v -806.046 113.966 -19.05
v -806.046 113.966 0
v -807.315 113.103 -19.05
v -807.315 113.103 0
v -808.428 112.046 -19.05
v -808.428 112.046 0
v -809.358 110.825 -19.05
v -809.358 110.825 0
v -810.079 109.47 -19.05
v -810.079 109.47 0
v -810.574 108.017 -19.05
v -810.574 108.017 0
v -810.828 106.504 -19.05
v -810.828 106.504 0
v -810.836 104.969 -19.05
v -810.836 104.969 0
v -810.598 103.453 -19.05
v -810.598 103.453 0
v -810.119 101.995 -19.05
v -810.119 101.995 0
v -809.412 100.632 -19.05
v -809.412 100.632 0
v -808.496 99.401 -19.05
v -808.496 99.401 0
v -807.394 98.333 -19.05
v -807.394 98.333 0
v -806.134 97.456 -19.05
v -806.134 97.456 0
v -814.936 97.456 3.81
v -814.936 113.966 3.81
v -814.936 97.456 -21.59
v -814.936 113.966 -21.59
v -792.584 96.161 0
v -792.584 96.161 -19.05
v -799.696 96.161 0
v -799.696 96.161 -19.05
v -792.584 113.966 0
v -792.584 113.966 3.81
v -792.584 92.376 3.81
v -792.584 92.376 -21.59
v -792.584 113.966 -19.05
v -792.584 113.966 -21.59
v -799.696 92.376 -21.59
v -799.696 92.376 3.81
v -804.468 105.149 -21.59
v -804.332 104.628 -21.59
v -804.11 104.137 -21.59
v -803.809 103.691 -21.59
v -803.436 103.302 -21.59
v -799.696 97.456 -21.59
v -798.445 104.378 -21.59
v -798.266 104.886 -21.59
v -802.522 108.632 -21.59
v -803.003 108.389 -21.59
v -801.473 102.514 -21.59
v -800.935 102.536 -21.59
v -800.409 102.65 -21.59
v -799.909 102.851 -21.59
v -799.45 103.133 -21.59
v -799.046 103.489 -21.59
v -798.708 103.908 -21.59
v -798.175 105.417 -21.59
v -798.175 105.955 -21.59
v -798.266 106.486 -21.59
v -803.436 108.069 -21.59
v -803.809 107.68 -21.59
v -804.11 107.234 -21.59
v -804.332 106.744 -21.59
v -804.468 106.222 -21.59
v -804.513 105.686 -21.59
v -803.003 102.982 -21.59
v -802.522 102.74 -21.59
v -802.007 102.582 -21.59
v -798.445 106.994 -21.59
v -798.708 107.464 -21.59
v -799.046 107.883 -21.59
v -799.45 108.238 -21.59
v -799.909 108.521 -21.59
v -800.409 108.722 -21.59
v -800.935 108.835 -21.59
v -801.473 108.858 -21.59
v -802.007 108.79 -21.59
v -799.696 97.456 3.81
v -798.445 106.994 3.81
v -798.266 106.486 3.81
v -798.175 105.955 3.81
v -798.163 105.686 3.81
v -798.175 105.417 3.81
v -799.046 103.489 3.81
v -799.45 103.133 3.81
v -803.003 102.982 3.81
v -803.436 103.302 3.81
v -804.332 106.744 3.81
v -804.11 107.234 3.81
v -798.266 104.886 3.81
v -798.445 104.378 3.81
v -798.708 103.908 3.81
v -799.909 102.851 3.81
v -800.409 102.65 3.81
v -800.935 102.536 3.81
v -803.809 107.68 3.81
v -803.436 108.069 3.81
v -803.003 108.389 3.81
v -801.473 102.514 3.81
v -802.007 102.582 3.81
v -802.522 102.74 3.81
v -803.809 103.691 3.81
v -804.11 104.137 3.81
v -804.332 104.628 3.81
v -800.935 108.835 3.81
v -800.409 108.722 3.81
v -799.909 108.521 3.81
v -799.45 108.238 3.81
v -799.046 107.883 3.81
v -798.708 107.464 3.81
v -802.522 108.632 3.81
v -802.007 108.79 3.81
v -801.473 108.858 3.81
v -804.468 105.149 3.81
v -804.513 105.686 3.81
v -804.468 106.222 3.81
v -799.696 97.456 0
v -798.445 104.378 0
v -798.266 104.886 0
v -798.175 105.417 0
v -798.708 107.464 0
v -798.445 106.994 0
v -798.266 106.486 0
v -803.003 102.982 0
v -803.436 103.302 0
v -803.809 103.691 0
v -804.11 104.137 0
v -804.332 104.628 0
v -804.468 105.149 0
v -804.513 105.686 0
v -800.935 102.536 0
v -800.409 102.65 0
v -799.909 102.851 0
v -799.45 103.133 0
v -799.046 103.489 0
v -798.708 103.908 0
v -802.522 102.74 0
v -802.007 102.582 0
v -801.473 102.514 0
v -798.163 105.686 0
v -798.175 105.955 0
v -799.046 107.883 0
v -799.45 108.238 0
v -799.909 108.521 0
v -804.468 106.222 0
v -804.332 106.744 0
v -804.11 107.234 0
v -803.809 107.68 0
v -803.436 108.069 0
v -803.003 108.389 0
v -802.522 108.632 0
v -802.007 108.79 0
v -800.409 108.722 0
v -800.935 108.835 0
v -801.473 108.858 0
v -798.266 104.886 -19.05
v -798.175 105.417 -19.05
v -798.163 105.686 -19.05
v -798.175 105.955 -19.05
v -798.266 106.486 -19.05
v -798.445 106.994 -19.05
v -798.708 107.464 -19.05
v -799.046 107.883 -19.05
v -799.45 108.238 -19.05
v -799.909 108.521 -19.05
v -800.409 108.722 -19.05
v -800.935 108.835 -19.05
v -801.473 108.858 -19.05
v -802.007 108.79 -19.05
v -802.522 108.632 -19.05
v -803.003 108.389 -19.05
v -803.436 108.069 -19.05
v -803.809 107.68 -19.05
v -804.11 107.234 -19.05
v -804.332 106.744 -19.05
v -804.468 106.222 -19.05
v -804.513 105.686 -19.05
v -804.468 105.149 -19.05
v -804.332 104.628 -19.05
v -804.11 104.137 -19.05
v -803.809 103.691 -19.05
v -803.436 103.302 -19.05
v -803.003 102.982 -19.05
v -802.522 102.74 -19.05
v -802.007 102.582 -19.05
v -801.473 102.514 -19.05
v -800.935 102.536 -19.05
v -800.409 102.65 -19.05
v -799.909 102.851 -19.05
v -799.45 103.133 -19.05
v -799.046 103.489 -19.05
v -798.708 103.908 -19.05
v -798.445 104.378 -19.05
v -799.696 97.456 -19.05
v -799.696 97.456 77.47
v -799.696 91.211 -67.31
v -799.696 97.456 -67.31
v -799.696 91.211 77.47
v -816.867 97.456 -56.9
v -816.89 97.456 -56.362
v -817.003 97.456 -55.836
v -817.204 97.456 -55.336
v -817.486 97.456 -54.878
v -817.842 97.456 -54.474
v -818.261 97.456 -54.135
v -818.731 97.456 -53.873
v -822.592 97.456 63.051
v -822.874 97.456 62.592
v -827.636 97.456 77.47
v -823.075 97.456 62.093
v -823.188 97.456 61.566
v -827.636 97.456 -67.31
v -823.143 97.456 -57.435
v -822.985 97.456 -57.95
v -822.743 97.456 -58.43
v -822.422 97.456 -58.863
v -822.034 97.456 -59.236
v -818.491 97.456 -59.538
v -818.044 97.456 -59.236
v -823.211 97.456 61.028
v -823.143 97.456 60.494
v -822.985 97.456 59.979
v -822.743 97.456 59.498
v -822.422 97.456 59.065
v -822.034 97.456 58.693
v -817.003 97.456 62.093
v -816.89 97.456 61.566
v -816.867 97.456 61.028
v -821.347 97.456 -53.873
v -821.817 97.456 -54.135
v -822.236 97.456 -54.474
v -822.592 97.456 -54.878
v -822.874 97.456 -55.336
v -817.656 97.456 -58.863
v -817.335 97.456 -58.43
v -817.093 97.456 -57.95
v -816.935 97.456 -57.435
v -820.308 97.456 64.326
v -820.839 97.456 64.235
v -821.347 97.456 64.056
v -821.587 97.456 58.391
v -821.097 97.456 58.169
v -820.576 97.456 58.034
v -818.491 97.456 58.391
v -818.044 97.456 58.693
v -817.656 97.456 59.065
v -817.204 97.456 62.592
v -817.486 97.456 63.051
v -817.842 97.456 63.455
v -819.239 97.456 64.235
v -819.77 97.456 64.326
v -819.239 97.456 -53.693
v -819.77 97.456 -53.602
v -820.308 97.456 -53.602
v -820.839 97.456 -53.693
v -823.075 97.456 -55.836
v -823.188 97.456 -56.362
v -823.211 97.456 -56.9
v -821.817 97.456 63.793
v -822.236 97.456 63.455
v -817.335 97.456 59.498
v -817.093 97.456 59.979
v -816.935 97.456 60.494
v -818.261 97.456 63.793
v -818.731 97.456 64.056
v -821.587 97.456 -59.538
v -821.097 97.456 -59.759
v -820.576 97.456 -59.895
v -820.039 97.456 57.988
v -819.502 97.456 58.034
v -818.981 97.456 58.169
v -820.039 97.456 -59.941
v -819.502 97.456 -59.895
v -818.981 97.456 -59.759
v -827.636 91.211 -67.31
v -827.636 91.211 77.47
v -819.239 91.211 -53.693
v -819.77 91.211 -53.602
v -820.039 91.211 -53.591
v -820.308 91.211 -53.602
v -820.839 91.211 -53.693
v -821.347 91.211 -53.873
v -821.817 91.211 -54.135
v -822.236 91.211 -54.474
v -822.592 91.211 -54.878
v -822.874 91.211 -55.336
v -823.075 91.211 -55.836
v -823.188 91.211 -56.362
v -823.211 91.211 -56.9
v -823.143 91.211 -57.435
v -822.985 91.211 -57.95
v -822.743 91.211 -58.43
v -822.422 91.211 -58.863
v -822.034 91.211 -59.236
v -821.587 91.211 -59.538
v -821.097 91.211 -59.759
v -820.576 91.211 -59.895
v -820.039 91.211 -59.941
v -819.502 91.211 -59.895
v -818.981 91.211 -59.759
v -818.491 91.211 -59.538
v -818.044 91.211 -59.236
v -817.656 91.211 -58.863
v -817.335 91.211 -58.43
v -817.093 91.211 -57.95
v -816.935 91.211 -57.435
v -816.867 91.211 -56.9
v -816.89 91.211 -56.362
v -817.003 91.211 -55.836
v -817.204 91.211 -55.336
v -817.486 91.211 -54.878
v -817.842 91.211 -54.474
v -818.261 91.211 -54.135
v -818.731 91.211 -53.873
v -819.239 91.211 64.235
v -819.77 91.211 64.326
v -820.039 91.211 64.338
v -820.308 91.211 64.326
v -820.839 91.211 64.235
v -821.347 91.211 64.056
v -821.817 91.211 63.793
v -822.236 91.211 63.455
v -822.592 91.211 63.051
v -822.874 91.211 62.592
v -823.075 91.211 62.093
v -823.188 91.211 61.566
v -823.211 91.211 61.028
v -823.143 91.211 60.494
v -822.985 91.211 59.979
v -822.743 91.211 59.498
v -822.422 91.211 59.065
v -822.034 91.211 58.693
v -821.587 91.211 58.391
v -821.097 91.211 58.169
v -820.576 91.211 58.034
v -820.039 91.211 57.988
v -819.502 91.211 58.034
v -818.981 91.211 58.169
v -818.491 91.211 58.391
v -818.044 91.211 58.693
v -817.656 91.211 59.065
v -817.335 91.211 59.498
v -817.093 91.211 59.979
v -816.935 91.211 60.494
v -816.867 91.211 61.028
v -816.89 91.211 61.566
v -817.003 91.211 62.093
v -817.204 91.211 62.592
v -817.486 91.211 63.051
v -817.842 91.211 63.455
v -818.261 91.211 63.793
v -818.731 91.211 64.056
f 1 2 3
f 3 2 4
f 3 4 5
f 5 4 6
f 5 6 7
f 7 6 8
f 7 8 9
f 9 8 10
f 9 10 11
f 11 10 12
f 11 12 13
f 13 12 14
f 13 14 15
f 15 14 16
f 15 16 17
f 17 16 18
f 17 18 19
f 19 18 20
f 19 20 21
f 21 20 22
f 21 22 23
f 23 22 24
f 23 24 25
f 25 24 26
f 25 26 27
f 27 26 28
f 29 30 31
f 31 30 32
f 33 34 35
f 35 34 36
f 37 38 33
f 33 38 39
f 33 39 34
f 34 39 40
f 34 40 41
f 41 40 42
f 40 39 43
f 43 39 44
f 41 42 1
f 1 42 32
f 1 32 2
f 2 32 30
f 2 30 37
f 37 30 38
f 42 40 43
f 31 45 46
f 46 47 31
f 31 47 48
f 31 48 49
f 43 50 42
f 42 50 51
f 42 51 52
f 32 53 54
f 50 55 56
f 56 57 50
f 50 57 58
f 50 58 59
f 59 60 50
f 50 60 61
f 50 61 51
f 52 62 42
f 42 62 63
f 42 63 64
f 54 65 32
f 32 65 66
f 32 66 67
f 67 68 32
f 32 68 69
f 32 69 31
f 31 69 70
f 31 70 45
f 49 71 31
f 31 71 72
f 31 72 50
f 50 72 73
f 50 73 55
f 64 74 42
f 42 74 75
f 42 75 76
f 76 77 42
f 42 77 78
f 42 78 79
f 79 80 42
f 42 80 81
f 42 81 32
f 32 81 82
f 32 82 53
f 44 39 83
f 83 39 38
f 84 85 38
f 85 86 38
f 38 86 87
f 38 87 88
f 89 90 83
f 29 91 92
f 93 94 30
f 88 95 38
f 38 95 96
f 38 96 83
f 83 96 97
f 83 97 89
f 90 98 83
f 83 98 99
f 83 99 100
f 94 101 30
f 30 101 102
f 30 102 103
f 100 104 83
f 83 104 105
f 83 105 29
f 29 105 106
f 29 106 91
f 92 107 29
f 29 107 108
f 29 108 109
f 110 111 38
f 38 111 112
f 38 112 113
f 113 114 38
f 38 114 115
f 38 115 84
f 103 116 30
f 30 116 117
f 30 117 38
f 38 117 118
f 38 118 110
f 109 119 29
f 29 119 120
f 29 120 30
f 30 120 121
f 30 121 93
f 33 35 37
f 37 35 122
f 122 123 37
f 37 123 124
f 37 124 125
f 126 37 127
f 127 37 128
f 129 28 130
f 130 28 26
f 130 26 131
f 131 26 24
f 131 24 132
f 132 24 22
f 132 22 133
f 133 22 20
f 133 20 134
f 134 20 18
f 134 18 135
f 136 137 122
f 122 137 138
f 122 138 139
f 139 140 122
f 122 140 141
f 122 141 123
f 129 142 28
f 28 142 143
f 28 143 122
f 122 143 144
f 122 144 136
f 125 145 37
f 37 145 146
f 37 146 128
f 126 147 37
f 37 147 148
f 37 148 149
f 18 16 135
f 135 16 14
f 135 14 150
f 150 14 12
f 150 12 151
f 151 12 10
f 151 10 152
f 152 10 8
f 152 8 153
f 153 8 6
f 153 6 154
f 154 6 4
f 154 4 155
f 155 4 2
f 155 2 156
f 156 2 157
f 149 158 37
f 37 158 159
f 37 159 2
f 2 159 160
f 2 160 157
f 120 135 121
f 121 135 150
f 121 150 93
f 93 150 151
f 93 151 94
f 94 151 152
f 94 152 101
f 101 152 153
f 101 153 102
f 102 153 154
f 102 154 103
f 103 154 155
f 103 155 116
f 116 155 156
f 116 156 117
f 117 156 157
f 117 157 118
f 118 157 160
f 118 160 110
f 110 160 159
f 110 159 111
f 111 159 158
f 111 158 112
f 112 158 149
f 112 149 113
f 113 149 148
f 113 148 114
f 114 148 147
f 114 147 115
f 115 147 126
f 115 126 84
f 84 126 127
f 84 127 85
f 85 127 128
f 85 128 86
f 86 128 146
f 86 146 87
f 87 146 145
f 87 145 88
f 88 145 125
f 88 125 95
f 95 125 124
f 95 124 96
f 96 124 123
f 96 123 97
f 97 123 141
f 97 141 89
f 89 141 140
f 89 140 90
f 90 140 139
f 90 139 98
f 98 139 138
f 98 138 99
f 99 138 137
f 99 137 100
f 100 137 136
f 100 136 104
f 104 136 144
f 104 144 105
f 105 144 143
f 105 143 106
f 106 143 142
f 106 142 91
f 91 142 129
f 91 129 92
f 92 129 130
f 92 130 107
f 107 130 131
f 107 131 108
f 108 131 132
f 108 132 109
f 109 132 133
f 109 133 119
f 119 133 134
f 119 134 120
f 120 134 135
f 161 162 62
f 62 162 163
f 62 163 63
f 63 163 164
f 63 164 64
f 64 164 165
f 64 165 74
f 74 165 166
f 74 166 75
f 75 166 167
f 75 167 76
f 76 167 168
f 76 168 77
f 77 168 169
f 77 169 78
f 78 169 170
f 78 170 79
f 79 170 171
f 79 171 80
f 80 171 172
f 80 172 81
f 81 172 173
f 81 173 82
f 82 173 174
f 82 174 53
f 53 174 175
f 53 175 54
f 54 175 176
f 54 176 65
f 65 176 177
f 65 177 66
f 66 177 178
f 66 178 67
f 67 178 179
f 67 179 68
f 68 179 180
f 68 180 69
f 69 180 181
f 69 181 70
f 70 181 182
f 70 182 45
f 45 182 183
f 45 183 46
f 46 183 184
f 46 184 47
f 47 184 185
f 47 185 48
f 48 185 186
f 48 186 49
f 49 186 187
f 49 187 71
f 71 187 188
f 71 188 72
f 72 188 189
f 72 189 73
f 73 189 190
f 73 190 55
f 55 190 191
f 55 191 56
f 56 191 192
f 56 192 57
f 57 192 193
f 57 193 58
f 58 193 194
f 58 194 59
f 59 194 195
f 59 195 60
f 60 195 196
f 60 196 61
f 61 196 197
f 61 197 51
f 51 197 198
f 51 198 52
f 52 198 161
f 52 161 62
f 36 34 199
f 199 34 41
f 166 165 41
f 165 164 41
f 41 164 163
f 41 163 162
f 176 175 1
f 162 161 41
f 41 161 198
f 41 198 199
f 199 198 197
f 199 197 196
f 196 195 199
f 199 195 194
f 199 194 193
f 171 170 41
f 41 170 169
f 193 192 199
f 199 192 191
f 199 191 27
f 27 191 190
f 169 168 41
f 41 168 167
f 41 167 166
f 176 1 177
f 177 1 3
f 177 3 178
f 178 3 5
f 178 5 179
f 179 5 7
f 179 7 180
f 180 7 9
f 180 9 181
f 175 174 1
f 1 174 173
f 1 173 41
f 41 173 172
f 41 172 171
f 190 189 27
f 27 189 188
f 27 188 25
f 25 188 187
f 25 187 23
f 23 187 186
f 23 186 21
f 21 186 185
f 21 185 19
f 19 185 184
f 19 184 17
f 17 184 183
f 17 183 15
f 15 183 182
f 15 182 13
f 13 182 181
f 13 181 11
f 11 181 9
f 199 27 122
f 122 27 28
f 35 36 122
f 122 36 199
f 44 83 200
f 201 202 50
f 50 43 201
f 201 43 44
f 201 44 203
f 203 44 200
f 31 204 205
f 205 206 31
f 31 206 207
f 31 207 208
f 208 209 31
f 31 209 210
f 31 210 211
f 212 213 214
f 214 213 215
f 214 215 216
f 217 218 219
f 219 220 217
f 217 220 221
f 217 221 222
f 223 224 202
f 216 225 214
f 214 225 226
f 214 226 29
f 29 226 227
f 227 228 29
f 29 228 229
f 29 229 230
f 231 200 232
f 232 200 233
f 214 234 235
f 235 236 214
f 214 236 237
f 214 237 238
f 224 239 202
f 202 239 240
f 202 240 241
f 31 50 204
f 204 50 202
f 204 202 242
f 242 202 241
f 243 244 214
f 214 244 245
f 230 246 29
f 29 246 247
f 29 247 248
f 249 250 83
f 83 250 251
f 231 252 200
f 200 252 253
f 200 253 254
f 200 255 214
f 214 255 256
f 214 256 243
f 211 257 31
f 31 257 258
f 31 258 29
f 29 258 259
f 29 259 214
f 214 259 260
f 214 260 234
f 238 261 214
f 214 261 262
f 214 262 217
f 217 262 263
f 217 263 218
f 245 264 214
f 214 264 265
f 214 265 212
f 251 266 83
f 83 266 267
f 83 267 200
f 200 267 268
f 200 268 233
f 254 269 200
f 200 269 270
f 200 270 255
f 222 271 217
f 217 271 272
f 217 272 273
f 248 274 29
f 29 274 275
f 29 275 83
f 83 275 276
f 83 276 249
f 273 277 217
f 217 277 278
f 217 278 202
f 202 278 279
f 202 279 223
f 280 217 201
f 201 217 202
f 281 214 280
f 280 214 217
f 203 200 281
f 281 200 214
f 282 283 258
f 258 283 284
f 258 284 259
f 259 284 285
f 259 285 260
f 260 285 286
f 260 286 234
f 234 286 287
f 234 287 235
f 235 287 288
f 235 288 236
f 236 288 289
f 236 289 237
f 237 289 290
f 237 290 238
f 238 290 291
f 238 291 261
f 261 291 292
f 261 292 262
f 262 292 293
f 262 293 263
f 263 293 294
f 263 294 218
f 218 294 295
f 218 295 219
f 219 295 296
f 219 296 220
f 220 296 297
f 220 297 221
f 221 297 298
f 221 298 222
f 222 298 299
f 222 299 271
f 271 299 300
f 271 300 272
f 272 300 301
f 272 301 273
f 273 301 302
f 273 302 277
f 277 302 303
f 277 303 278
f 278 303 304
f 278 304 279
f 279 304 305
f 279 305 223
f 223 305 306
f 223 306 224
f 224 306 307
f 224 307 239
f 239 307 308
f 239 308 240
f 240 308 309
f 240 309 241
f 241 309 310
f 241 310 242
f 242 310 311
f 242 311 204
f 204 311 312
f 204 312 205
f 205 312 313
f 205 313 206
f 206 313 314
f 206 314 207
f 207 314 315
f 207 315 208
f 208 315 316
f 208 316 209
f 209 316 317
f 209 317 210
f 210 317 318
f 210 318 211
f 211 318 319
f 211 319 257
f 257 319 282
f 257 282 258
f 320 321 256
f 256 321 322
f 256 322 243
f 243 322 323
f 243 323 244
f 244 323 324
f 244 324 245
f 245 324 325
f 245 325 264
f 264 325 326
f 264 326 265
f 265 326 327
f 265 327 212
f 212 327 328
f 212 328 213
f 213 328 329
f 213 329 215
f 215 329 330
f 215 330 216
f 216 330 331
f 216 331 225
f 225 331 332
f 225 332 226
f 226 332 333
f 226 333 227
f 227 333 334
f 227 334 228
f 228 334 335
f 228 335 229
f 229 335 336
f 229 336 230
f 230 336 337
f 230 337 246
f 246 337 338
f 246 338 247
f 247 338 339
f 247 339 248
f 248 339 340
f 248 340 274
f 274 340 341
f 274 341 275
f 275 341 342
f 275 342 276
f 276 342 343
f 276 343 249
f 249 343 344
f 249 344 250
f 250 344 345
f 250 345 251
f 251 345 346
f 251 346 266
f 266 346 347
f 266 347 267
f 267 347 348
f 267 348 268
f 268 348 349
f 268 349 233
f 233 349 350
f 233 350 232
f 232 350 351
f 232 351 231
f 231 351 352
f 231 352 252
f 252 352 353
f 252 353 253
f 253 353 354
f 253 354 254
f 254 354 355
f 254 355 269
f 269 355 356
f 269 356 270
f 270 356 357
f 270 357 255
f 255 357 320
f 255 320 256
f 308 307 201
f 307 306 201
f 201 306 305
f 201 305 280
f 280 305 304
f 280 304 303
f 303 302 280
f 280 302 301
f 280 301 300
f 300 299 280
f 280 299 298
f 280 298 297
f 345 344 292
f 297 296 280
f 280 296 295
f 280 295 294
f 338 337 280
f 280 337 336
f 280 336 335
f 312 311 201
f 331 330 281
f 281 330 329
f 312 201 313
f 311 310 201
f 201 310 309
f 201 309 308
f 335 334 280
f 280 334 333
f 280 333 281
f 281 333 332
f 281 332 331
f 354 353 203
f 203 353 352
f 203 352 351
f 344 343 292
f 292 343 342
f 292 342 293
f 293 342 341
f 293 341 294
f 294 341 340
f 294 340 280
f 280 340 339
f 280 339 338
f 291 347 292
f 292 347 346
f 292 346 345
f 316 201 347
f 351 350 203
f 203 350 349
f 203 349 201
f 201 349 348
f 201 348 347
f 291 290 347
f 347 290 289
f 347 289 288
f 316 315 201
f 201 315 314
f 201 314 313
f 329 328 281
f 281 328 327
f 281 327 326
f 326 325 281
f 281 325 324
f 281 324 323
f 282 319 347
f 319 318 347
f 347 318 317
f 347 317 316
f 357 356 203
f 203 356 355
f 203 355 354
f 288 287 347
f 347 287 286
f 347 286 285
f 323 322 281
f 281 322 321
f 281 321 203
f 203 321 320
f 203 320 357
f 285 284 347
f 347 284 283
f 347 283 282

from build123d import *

# Parameters (mm, degrees)
BOSS_EXTRUDE1_DEPTH      = 21.59
SKETCH2_W                = 22.352
SKETCH2_H                = 21.59
SKETCH2_R                = 3.175
BOSS_EXTRUDE2_DEPTH      = 3.81
BOSS_EXTRUDE3_START      = -2.54
SKETCH3_R                = 3.175
BOSS_EXTRUDE3_DEPTH      = 2.54
BOSS_EXTRUDE4_DEPTH      = 1.164777
BOSS_EXTRUDE4_DEPTH_BACK = 5.08
SKETCH4_W                = 27.94
SKETCH4_H                = 144.78
SKETCH4_R                = 3.175


with BuildPart() as part:
    # Sketch1 → Boss-Extrude1 (new body)
    with BuildSketch(Plane.XY):
        with BuildLine():
            Line((-792.583825879, 92.376177143), (-792.583825879, 96.160777143))
            Line((-792.583825879, 96.160777143), (-801.338321143, 96.160777143))
            ThreePointArc((-801.338321143, 96.160777143), (-803.772947911, 96.477182381), (-806.045825879, 97.405377143))
            ThreePointArc((-806.045825879, 97.405377143), (-810.863321143, 105.685777143), (-806.045825879, 113.966177143))
            Line((-806.045825879, 113.966177143), (-814.935825879, 113.966177143))
            Line((-814.935825879, 113.966177143), (-814.935825879, 92.376177143))
            Line((-814.935825879, 92.376177143), (-792.583825879, 92.376177143))
        make_face()
    extrude(amount=-BOSS_EXTRUDE1_DEPTH)

    # Sketch2 → Boss-Extrude2 (add)
    with BuildSketch(Plane.XY):
        with Locations((-803.759825879, 103.171177143)):
            Rectangle(SKETCH2_W, SKETCH2_H)
        with Locations(Location((-801.338321143, 105.685777143, 0), (0, 0, 180))):
            Circle(SKETCH2_R, mode=Mode.SUBTRACT)
    extrude(amount=BOSS_EXTRUDE2_DEPTH)

    # Sketch3 → Boss-Extrude3 (add)
    with BuildSketch(Plane(origin=(0, 0, -21.59), x_dir=(-1, 0, 0), z_dir=(0, 0, -1)).offset(BOSS_EXTRUDE3_START)):
        with BuildLine():
            Line((792.583825879, 113.966177143), (792.583825879, 96.160777143))
            Line((792.583825879, 96.160777143), (801.338321143, 96.160777143))
            ThreePointArc((801.338321143, 96.160777143), (810.546915906, 103.251150375), (806.045825879, 113.966177143))
            Line((806.045825879, 113.966177143), (792.583825879, 113.966177143))
        make_face()
        with Locations((801.338321143, 105.685777143)):
            Circle(SKETCH3_R, mode=Mode.SUBTRACT)
    extrude(amount=BOSS_EXTRUDE3_DEPTH)

    # Sketch4 → Boss-Extrude4 (add, two sides: drawn at the far end of the back side and taken through both)
    with BuildSketch(Plane.XZ.offset(-92.376177143).offset(-BOSS_EXTRUDE4_DEPTH_BACK)):
        with Locations((-813.665825879, 5.08)):
            Rectangle(SKETCH4_W, SKETCH4_H)
        with Locations(Location((-820.039, -56.765714286, 0), (0, 0, 270))):
            Circle(SKETCH4_R, mode=Mode.SUBTRACT)
        with Locations(Location((-820.039, 61.162857143, 0), (0, 0, 270))):
            Circle(SKETCH4_R, mode=Mode.SUBTRACT)
    extrude(amount=BOSS_EXTRUDE4_DEPTH + BOSS_EXTRUDE4_DEPTH_BACK)


solid = part.part
